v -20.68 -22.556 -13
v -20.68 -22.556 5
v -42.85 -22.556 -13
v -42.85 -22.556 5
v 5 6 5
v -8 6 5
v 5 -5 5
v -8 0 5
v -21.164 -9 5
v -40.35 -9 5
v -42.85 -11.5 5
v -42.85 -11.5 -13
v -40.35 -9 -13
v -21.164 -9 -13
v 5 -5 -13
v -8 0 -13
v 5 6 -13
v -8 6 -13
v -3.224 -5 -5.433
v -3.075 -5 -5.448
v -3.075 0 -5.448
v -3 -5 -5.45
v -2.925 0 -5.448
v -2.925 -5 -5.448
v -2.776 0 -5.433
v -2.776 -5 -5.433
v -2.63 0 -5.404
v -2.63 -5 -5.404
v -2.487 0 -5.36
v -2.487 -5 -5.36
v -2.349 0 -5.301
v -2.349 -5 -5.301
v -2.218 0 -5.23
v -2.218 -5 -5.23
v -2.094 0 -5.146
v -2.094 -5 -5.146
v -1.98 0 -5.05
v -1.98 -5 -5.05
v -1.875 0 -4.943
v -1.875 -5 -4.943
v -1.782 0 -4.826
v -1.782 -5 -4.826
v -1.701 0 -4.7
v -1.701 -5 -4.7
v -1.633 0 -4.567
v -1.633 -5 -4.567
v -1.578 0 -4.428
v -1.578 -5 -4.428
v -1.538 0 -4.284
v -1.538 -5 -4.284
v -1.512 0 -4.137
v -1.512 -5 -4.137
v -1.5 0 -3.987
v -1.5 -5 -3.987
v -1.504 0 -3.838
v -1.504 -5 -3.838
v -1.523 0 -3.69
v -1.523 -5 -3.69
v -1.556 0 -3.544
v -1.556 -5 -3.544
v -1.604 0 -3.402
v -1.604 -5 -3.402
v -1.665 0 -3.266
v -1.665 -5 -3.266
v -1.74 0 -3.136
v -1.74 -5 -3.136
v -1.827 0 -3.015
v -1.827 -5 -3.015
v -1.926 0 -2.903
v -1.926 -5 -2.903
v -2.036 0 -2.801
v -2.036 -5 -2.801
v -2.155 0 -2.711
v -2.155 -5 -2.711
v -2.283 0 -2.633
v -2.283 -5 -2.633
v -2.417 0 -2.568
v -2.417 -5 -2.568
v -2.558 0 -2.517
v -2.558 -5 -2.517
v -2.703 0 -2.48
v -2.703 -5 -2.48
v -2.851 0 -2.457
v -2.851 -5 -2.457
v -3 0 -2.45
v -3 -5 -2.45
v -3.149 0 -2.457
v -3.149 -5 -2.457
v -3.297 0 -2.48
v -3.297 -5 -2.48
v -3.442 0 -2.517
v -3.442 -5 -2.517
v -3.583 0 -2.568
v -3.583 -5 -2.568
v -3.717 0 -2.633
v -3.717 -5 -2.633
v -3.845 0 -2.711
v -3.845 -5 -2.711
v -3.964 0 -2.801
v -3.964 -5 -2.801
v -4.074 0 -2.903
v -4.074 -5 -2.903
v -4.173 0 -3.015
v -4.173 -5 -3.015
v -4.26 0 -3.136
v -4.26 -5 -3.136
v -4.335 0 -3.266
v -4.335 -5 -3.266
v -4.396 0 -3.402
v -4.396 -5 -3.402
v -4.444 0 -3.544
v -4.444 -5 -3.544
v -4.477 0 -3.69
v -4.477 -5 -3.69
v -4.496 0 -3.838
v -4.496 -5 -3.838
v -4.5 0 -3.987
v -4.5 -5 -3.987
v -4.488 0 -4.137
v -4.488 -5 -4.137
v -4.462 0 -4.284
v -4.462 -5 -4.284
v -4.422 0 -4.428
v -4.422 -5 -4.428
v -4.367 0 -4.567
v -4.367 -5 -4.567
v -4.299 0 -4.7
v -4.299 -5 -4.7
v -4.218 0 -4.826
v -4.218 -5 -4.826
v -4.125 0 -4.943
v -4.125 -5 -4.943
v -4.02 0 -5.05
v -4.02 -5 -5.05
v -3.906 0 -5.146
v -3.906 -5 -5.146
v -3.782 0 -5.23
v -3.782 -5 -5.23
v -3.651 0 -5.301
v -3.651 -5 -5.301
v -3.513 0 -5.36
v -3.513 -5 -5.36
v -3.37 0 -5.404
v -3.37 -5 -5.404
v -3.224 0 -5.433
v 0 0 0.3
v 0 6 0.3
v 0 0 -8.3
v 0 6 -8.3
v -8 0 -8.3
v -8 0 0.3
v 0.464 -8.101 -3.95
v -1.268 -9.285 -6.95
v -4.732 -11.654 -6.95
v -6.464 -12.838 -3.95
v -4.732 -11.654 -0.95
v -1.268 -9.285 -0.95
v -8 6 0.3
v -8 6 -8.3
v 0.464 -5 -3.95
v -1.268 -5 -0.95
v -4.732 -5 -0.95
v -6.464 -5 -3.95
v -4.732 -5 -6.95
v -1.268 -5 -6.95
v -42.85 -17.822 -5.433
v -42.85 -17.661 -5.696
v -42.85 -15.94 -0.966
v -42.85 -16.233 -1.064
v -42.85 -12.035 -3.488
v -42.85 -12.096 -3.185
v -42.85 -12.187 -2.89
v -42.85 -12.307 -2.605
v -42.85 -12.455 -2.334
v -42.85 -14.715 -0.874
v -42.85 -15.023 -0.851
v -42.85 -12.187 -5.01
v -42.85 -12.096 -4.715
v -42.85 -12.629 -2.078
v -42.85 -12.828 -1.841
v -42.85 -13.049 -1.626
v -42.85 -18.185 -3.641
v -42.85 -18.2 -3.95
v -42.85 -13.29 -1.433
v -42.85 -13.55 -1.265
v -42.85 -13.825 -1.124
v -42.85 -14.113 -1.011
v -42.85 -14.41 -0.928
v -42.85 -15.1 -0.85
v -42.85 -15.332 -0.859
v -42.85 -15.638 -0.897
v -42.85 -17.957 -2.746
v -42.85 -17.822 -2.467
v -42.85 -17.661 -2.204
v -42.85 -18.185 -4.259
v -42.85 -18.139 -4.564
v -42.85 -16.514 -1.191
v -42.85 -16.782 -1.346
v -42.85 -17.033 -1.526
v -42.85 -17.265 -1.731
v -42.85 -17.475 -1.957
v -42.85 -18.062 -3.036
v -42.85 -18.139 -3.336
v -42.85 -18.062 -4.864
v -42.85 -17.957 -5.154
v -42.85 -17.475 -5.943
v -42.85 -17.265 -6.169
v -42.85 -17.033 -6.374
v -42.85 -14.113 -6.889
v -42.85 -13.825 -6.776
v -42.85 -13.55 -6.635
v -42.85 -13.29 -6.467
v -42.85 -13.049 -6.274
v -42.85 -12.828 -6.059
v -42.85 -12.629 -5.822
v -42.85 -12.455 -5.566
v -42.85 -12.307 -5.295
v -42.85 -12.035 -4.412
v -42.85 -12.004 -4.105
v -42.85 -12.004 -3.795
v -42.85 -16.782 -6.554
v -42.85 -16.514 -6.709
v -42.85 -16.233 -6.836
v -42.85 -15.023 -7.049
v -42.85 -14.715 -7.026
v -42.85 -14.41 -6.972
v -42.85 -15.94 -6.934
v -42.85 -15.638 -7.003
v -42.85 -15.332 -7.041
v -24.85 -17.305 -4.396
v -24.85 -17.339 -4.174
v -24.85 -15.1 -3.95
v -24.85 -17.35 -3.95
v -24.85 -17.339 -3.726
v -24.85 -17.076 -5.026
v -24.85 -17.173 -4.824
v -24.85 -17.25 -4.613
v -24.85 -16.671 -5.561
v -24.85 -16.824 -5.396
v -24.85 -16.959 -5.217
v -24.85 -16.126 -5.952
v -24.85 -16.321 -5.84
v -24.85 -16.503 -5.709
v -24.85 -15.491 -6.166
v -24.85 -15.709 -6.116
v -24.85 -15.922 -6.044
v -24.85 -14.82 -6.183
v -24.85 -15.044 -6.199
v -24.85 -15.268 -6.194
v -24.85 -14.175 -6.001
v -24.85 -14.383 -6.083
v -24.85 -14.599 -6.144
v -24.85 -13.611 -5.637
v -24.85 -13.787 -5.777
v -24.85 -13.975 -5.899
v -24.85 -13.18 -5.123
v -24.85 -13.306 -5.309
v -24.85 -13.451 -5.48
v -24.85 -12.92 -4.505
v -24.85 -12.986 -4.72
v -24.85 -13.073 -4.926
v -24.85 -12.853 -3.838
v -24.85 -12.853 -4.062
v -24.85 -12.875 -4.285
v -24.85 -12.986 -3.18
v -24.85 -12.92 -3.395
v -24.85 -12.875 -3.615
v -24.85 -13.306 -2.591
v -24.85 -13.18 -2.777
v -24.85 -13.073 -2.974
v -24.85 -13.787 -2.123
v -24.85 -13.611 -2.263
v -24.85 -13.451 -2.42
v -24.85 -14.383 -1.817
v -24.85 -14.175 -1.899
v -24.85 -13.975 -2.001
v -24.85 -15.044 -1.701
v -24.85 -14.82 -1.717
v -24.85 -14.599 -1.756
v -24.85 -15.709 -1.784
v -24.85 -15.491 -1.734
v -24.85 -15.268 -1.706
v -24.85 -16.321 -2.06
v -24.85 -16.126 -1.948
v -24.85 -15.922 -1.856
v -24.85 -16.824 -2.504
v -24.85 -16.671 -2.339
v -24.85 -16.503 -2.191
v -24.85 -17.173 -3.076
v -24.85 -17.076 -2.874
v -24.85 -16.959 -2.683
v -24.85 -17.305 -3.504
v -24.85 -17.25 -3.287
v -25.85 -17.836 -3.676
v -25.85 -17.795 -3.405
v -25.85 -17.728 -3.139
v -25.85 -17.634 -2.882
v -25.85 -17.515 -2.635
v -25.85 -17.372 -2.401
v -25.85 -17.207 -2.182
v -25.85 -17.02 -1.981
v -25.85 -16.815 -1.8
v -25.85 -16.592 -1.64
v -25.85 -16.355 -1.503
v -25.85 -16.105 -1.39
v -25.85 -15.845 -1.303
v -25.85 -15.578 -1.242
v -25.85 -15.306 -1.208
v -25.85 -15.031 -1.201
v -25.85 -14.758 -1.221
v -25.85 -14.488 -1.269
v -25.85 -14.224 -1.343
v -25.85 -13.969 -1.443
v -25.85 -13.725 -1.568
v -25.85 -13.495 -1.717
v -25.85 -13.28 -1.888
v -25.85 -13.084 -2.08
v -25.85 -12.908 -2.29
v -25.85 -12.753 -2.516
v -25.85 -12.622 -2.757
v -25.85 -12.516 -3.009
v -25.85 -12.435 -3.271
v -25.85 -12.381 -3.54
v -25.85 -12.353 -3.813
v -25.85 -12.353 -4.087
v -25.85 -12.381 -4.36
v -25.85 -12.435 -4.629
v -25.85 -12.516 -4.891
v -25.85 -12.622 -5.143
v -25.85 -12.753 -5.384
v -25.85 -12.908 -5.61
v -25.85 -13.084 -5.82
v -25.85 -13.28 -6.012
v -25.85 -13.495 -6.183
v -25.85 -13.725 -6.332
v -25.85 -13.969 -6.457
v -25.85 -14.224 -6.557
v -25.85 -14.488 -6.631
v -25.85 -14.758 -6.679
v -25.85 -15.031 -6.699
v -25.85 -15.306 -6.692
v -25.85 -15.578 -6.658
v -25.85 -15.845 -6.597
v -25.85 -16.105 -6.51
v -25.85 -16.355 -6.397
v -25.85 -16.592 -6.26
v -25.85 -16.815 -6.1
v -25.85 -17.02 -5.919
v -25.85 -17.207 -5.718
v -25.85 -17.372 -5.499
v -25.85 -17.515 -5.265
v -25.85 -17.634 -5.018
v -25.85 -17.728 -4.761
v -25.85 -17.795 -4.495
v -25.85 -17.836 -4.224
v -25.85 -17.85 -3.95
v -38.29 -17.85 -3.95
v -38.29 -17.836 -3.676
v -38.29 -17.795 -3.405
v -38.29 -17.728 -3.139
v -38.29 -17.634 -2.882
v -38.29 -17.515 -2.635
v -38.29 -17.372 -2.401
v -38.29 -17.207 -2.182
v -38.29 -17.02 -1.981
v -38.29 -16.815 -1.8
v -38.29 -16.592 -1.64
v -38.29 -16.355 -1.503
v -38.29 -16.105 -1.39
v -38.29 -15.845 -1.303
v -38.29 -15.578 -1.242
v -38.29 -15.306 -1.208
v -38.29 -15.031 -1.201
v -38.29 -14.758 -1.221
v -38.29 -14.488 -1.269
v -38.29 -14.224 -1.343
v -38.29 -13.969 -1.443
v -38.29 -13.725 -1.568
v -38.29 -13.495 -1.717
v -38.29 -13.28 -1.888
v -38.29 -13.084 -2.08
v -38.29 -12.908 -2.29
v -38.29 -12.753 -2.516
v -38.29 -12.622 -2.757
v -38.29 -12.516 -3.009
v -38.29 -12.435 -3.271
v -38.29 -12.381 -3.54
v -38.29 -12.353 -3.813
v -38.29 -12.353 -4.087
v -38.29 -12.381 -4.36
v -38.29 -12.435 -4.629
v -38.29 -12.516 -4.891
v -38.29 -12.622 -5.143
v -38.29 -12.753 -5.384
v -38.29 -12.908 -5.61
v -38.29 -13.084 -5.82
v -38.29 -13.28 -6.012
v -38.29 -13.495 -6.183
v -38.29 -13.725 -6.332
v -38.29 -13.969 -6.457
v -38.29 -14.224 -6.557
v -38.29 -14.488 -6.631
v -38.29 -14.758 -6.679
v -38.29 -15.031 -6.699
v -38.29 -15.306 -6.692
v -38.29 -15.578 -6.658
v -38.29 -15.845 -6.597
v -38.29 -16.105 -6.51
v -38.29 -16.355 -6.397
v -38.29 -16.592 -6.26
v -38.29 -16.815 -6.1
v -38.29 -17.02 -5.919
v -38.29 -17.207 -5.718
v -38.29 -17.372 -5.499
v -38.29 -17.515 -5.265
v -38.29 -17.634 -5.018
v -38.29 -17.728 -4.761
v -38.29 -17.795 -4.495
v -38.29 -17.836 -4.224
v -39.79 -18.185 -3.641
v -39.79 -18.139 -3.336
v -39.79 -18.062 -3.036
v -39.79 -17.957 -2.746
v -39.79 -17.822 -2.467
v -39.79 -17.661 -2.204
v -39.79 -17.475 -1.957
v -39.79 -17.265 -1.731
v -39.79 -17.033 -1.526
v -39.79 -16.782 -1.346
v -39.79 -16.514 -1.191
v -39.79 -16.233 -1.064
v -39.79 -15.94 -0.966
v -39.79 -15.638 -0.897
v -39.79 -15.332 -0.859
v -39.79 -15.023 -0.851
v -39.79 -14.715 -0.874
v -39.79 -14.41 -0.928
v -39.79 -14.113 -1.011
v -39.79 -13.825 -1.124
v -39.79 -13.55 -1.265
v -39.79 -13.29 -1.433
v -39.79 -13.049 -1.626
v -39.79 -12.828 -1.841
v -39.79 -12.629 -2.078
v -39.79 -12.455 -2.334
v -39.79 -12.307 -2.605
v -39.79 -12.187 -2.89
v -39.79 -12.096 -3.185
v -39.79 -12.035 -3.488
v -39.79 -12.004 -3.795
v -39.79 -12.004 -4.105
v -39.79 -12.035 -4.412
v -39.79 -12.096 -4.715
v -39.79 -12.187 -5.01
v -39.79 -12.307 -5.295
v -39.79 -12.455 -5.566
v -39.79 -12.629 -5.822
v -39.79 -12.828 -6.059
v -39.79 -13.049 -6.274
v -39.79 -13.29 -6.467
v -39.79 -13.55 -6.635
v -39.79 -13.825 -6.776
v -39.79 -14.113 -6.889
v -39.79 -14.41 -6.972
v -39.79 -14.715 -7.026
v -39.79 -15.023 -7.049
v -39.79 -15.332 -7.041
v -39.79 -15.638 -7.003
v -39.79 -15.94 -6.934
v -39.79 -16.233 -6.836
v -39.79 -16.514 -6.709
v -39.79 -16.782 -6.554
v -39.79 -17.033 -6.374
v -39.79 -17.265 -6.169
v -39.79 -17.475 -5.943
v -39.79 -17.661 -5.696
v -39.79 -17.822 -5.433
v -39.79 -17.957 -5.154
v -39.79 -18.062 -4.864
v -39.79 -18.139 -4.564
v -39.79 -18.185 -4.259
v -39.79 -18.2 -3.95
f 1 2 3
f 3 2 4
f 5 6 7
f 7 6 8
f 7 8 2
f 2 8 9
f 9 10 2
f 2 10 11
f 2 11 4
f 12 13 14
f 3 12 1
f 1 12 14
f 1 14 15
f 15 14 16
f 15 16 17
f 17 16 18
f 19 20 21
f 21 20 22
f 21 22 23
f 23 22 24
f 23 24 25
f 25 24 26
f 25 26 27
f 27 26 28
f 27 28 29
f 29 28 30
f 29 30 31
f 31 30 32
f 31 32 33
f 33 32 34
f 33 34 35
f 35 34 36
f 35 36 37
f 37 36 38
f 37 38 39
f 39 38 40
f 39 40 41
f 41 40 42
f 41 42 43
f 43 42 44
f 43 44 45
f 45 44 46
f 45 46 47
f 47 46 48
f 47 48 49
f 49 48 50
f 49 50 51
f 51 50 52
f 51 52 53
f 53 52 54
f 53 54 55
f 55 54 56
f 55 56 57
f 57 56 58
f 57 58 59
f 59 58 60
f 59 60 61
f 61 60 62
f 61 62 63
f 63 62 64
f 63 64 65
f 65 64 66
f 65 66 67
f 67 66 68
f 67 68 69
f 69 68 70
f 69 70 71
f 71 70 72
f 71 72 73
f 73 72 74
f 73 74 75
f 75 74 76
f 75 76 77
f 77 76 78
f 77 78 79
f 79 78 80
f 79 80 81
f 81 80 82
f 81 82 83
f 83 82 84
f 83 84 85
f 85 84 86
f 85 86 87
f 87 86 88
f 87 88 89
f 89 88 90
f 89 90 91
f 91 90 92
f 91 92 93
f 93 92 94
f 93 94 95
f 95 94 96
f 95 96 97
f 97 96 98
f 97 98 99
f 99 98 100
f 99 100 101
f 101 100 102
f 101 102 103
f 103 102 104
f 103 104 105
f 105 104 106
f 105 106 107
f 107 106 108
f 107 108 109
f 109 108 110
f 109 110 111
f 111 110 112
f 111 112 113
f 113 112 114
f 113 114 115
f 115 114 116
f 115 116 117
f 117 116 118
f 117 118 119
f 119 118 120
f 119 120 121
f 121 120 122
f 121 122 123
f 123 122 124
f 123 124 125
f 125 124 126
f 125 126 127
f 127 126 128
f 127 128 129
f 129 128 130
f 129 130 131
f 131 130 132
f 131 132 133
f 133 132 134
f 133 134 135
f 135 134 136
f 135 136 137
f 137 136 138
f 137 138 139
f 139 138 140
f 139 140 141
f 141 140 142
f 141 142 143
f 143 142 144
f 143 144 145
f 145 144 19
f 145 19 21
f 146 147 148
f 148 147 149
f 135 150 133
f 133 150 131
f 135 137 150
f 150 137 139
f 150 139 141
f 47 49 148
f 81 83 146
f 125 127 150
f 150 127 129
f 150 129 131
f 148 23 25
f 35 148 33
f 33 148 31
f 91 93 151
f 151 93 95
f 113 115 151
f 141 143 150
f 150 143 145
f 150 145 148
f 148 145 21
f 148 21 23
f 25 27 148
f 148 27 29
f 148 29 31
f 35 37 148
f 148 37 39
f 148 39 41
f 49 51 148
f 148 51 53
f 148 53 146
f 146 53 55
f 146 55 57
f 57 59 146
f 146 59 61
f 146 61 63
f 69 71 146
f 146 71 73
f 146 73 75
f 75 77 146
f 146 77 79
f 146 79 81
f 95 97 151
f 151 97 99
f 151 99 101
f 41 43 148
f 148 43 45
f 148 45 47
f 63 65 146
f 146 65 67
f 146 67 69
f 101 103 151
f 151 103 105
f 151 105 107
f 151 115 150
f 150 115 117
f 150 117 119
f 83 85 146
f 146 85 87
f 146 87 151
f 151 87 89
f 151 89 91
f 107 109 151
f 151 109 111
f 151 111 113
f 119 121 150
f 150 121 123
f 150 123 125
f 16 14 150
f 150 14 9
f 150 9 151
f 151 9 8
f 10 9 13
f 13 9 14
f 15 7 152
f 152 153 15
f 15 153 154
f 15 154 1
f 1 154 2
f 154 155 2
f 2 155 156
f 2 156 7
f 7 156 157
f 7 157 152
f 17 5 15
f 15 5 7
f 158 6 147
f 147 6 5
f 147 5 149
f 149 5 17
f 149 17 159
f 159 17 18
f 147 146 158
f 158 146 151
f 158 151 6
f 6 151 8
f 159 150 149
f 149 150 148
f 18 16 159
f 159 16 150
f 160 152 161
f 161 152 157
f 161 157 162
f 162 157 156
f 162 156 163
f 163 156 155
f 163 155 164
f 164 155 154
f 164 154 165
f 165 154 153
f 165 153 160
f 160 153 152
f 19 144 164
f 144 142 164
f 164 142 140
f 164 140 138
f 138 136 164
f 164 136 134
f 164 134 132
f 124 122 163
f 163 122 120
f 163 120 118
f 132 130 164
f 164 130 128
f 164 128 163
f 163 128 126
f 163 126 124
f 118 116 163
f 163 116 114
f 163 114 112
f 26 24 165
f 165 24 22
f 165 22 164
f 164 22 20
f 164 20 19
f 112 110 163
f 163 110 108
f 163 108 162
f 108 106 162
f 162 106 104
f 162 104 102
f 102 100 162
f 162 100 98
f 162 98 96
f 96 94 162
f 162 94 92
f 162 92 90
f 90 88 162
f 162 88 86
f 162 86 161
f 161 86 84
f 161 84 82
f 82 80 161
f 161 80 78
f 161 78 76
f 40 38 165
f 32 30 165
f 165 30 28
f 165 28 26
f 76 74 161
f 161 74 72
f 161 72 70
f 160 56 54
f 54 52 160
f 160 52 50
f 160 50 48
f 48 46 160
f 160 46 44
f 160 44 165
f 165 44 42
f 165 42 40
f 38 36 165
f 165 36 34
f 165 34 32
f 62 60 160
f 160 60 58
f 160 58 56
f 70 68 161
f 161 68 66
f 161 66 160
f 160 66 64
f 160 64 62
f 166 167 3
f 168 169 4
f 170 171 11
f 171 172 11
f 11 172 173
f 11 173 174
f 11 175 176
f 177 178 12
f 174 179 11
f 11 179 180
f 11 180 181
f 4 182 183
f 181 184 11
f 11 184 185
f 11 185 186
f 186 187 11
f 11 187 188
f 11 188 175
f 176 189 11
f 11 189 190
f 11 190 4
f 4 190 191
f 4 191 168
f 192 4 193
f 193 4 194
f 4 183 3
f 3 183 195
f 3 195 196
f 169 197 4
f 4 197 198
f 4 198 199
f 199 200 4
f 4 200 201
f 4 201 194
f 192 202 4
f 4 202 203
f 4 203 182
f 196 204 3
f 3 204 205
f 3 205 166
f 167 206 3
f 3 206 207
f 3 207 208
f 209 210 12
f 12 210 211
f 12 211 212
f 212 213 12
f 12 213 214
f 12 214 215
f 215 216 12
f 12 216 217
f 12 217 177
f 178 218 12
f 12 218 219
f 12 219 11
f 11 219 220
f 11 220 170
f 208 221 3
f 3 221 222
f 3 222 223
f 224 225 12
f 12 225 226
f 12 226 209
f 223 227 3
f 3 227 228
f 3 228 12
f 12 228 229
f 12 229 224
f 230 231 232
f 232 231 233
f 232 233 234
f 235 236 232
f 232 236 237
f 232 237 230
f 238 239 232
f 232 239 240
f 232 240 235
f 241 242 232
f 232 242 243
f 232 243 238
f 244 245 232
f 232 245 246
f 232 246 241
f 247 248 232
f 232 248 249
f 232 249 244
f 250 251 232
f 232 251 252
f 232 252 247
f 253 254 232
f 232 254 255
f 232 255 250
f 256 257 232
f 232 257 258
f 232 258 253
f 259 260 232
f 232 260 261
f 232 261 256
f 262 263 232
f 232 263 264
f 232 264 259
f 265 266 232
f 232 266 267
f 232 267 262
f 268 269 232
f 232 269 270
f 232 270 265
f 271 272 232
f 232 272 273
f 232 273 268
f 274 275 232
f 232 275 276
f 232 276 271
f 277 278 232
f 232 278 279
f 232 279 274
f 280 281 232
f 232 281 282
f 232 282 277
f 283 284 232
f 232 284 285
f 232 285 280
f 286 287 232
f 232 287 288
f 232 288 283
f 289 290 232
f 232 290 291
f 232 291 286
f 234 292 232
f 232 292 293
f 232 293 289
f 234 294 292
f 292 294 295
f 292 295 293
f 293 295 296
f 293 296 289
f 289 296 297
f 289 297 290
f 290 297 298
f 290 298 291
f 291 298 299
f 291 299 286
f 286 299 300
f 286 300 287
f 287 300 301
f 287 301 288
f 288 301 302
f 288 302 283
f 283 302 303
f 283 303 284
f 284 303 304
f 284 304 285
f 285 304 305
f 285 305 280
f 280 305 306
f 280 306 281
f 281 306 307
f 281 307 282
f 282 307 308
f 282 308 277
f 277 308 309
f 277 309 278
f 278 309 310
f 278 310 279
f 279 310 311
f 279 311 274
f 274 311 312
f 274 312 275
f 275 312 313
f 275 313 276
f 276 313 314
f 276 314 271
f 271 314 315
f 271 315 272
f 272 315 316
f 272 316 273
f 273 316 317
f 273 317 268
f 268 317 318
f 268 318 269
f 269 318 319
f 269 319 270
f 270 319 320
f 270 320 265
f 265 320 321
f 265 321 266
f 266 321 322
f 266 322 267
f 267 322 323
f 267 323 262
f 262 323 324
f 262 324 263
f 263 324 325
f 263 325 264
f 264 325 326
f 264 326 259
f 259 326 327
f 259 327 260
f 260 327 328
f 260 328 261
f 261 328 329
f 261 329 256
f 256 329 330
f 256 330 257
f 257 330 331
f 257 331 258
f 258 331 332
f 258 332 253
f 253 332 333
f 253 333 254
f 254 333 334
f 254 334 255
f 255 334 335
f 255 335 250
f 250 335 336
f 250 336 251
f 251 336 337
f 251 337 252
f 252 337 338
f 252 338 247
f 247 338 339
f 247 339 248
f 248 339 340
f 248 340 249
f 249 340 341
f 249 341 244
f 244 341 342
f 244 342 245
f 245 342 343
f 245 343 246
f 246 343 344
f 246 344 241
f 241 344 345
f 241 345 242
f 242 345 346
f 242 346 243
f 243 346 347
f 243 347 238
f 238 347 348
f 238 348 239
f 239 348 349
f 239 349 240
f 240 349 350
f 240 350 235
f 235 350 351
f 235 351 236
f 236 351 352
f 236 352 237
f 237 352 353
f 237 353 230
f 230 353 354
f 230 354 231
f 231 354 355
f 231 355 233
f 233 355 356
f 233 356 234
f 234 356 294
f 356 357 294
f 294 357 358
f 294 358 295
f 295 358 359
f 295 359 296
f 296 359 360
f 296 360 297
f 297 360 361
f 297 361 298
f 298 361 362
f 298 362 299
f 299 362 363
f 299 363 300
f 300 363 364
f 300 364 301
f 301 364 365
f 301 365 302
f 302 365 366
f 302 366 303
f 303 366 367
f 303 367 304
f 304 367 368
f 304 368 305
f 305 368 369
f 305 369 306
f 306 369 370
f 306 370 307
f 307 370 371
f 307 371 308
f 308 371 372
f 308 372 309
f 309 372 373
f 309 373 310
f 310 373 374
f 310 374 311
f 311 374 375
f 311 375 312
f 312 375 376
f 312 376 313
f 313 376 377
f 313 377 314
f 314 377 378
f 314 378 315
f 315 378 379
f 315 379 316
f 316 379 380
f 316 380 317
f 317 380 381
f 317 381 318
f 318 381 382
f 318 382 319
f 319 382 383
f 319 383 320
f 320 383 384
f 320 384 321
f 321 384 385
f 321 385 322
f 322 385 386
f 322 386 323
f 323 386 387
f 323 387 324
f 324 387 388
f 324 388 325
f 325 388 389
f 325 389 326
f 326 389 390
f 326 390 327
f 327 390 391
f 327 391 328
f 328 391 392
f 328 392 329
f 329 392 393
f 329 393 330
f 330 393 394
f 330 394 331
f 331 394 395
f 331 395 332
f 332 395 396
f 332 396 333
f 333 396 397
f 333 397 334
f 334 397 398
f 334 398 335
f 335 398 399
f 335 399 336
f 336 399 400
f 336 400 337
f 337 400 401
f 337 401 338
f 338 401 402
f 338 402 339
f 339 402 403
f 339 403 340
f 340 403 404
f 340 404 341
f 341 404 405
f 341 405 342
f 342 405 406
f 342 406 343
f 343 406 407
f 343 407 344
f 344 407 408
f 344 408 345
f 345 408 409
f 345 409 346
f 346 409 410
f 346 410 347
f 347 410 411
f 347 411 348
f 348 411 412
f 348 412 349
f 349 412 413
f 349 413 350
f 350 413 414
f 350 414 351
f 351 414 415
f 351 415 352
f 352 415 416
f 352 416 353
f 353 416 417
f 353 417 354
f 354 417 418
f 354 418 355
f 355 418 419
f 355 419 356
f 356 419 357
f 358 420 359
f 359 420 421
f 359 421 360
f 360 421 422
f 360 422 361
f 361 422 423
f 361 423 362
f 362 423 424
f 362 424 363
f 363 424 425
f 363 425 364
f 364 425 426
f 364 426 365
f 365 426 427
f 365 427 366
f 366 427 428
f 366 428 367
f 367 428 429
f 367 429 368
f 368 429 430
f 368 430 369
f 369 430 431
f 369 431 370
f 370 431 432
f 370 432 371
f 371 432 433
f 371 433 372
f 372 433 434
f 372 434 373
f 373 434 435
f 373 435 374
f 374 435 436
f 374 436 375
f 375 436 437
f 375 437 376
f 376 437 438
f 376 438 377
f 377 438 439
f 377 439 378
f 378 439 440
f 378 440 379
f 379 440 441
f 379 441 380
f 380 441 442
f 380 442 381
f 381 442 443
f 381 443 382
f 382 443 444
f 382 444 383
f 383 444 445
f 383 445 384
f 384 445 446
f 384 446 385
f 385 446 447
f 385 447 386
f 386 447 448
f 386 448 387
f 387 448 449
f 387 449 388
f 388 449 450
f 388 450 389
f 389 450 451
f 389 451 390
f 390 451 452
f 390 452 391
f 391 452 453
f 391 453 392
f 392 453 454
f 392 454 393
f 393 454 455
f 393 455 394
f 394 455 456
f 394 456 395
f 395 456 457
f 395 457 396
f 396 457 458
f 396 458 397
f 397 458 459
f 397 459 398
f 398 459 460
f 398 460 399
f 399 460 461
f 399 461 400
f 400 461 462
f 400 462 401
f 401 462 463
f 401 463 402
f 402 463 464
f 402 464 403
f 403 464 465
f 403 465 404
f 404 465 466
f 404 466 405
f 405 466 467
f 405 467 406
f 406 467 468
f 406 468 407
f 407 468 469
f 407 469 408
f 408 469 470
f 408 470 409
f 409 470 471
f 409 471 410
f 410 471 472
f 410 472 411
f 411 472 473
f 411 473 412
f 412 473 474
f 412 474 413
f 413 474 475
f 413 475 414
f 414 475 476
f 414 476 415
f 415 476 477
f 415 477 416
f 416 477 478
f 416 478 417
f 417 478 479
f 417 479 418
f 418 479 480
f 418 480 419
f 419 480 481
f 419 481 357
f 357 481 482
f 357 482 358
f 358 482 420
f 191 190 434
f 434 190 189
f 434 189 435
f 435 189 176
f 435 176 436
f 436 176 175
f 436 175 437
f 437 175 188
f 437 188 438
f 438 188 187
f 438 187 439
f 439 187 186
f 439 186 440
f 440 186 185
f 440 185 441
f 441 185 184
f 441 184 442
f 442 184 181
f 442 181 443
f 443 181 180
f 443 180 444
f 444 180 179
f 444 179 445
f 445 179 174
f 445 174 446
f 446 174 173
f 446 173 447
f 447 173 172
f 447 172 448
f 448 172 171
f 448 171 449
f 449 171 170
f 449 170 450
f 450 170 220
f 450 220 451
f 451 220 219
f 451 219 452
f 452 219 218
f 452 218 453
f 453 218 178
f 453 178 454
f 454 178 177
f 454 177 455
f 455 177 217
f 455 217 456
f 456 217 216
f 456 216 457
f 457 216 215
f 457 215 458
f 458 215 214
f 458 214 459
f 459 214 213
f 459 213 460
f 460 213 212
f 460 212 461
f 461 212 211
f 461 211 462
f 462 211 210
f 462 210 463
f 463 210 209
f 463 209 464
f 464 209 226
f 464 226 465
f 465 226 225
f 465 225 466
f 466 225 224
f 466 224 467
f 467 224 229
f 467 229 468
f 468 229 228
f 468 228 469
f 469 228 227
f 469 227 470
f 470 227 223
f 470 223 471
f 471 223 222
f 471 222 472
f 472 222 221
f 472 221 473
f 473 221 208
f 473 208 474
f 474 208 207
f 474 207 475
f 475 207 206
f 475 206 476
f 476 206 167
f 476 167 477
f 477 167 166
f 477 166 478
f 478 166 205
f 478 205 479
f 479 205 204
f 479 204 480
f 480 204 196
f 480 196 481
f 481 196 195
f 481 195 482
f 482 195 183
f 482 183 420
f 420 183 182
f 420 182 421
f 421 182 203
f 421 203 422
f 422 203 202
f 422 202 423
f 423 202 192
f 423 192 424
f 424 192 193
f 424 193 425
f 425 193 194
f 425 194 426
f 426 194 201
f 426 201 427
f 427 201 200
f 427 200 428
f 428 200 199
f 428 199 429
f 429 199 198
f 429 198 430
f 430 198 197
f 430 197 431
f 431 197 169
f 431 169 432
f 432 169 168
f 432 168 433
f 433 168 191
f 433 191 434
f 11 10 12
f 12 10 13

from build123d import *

# Parameters (mm, degrees)
BOSS_EXTRUDE1_DEPTH      = 5
BOSS_EXTRUDE1_DEPTH_BACK = 13
SKETCH2_R                = 1.5
CUT_EXTRUDE1_DEPTH       = 66.915554427
SKETCH4_W                = 8
SKETCH4_H                = 4.7
BOSS_EXTRUDE2_DEPTH      = 6
CUT_EXTRUDE3_START       = -5
CUT_EXTRUDE3_DEPTH       = 61.915554427
CUT_EXTRUDE4_DEPTH       = 68.080998169
CHAMFER1_SIZE            = 2.5


with BuildPart() as part:
    # Sketch1 → Boss-Extrude1 (new, two sides: drawn at the far end of the back side and taken through both)
    with BuildSketch(Plane.XY.offset(-BOSS_EXTRUDE1_DEPTH_BACK)):
        Polygon((0, 6), (5, 6), (5, -5), (-20.67950334, -22.556349186), (-49.056349186, -22.556349186), (-60.556349186, -11.056349186), (-46.414213562, 3.085786438), (-34.328427125, -9), (-21.164213562, -9), (-8, 0), (0, 0), align=None)
    extrude(amount=BOSS_EXTRUDE1_DEPTH + BOSS_EXTRUDE1_DEPTH_BACK)

    # Sketch2 → Cut-Extrude1 (cut, through all)
    with BuildSketch(Plane(origin=(0, 0, 0), x_dir=(1, 0, 0), z_dir=(0, 1, 0))):
        with Locations(Location((-3, 3.95, 0), (0, 0, 270))):
            Circle(SKETCH2_R)
    extrude(amount=-CUT_EXTRUDE1_DEPTH, mode=Mode.SUBTRACT)

    # Sketch4 → Boss-Extrude2 (add)
    with BuildSketch(Plane(origin=(0, 0, 0), x_dir=(1, 0, 0), z_dir=(0, 1, 0))):
        with Locations((-4, -2.65)):
            Rectangle(SKETCH4_W, SKETCH4_H)
        with Locations((-4, 10.65)):
            Rectangle(SKETCH4_W, SKETCH4_H)
    extrude(amount=BOSS_EXTRUDE2_DEPTH)

    # Sketch5 → Cut-Extrude3 (cut, through all)
    with BuildSketch(Plane(origin=(0, 0, 0), x_dir=(1, 0, 0), z_dir=(0, 1, 0)).offset(CUT_EXTRUDE3_START)):
        Polygon((-1.267949192, 0.95), (-4.732050808, 0.95), (-6.464101615, 3.95), (-4.732050808, 6.95), (-1.267949192, 6.95), (0.464101615, 3.95), align=None)
    extrude(amount=-CUT_EXTRUDE3_DEPTH, mode=Mode.SUBTRACT)

    # Sketch6 → Cut-Extrude4 (cut, through all)
    with BuildSketch(Plane.XY.offset(5)):
        Polygon((-42.85, -22.556349186), (-49.056349186, -22.556349186), (-60.556349186, -11.056349186), (-46.414213562, 3.085786438), (-34.328427125, -9), (-42.85, -9), align=None)
    extrude(amount=-CUT_EXTRUDE4_DEPTH, mode=Mode.SUBTRACT)

    # Sketch7 → Cut-Revolve1 (revolve, cut)
    with BuildSketch(Plane.XY.offset(-3.95), mode=Mode.PRIVATE) as cut_revolve1_sk:
        Polygon((-24.85, -15.1), (-25.85, -15.1), (-45.997007673, -15.1), (-45.997007673, -12), (-39.790264322, -12), (-38.290264322, -12.35), (-25.85, -12.35), (-24.85, -12.85), align=None)
    revolve(cut_revolve1_sk.sketch.rotate(Axis((-45.997007673, -15.1, -3.95), (1, 0, 0)), 180), axis=Axis((-45.997007673, -15.1, -3.95), (1, 0, 0)), mode=Mode.SUBTRACT)

    # Chamfer1
    chamfer1_edges = [part.edges().sort_by_distance(p)[0] for p in [
        (-42.85, -9, -4),
    ]]
    chamfer(chamfer1_edges, length=CHAMFER1_SIZE)


solid = part.part
